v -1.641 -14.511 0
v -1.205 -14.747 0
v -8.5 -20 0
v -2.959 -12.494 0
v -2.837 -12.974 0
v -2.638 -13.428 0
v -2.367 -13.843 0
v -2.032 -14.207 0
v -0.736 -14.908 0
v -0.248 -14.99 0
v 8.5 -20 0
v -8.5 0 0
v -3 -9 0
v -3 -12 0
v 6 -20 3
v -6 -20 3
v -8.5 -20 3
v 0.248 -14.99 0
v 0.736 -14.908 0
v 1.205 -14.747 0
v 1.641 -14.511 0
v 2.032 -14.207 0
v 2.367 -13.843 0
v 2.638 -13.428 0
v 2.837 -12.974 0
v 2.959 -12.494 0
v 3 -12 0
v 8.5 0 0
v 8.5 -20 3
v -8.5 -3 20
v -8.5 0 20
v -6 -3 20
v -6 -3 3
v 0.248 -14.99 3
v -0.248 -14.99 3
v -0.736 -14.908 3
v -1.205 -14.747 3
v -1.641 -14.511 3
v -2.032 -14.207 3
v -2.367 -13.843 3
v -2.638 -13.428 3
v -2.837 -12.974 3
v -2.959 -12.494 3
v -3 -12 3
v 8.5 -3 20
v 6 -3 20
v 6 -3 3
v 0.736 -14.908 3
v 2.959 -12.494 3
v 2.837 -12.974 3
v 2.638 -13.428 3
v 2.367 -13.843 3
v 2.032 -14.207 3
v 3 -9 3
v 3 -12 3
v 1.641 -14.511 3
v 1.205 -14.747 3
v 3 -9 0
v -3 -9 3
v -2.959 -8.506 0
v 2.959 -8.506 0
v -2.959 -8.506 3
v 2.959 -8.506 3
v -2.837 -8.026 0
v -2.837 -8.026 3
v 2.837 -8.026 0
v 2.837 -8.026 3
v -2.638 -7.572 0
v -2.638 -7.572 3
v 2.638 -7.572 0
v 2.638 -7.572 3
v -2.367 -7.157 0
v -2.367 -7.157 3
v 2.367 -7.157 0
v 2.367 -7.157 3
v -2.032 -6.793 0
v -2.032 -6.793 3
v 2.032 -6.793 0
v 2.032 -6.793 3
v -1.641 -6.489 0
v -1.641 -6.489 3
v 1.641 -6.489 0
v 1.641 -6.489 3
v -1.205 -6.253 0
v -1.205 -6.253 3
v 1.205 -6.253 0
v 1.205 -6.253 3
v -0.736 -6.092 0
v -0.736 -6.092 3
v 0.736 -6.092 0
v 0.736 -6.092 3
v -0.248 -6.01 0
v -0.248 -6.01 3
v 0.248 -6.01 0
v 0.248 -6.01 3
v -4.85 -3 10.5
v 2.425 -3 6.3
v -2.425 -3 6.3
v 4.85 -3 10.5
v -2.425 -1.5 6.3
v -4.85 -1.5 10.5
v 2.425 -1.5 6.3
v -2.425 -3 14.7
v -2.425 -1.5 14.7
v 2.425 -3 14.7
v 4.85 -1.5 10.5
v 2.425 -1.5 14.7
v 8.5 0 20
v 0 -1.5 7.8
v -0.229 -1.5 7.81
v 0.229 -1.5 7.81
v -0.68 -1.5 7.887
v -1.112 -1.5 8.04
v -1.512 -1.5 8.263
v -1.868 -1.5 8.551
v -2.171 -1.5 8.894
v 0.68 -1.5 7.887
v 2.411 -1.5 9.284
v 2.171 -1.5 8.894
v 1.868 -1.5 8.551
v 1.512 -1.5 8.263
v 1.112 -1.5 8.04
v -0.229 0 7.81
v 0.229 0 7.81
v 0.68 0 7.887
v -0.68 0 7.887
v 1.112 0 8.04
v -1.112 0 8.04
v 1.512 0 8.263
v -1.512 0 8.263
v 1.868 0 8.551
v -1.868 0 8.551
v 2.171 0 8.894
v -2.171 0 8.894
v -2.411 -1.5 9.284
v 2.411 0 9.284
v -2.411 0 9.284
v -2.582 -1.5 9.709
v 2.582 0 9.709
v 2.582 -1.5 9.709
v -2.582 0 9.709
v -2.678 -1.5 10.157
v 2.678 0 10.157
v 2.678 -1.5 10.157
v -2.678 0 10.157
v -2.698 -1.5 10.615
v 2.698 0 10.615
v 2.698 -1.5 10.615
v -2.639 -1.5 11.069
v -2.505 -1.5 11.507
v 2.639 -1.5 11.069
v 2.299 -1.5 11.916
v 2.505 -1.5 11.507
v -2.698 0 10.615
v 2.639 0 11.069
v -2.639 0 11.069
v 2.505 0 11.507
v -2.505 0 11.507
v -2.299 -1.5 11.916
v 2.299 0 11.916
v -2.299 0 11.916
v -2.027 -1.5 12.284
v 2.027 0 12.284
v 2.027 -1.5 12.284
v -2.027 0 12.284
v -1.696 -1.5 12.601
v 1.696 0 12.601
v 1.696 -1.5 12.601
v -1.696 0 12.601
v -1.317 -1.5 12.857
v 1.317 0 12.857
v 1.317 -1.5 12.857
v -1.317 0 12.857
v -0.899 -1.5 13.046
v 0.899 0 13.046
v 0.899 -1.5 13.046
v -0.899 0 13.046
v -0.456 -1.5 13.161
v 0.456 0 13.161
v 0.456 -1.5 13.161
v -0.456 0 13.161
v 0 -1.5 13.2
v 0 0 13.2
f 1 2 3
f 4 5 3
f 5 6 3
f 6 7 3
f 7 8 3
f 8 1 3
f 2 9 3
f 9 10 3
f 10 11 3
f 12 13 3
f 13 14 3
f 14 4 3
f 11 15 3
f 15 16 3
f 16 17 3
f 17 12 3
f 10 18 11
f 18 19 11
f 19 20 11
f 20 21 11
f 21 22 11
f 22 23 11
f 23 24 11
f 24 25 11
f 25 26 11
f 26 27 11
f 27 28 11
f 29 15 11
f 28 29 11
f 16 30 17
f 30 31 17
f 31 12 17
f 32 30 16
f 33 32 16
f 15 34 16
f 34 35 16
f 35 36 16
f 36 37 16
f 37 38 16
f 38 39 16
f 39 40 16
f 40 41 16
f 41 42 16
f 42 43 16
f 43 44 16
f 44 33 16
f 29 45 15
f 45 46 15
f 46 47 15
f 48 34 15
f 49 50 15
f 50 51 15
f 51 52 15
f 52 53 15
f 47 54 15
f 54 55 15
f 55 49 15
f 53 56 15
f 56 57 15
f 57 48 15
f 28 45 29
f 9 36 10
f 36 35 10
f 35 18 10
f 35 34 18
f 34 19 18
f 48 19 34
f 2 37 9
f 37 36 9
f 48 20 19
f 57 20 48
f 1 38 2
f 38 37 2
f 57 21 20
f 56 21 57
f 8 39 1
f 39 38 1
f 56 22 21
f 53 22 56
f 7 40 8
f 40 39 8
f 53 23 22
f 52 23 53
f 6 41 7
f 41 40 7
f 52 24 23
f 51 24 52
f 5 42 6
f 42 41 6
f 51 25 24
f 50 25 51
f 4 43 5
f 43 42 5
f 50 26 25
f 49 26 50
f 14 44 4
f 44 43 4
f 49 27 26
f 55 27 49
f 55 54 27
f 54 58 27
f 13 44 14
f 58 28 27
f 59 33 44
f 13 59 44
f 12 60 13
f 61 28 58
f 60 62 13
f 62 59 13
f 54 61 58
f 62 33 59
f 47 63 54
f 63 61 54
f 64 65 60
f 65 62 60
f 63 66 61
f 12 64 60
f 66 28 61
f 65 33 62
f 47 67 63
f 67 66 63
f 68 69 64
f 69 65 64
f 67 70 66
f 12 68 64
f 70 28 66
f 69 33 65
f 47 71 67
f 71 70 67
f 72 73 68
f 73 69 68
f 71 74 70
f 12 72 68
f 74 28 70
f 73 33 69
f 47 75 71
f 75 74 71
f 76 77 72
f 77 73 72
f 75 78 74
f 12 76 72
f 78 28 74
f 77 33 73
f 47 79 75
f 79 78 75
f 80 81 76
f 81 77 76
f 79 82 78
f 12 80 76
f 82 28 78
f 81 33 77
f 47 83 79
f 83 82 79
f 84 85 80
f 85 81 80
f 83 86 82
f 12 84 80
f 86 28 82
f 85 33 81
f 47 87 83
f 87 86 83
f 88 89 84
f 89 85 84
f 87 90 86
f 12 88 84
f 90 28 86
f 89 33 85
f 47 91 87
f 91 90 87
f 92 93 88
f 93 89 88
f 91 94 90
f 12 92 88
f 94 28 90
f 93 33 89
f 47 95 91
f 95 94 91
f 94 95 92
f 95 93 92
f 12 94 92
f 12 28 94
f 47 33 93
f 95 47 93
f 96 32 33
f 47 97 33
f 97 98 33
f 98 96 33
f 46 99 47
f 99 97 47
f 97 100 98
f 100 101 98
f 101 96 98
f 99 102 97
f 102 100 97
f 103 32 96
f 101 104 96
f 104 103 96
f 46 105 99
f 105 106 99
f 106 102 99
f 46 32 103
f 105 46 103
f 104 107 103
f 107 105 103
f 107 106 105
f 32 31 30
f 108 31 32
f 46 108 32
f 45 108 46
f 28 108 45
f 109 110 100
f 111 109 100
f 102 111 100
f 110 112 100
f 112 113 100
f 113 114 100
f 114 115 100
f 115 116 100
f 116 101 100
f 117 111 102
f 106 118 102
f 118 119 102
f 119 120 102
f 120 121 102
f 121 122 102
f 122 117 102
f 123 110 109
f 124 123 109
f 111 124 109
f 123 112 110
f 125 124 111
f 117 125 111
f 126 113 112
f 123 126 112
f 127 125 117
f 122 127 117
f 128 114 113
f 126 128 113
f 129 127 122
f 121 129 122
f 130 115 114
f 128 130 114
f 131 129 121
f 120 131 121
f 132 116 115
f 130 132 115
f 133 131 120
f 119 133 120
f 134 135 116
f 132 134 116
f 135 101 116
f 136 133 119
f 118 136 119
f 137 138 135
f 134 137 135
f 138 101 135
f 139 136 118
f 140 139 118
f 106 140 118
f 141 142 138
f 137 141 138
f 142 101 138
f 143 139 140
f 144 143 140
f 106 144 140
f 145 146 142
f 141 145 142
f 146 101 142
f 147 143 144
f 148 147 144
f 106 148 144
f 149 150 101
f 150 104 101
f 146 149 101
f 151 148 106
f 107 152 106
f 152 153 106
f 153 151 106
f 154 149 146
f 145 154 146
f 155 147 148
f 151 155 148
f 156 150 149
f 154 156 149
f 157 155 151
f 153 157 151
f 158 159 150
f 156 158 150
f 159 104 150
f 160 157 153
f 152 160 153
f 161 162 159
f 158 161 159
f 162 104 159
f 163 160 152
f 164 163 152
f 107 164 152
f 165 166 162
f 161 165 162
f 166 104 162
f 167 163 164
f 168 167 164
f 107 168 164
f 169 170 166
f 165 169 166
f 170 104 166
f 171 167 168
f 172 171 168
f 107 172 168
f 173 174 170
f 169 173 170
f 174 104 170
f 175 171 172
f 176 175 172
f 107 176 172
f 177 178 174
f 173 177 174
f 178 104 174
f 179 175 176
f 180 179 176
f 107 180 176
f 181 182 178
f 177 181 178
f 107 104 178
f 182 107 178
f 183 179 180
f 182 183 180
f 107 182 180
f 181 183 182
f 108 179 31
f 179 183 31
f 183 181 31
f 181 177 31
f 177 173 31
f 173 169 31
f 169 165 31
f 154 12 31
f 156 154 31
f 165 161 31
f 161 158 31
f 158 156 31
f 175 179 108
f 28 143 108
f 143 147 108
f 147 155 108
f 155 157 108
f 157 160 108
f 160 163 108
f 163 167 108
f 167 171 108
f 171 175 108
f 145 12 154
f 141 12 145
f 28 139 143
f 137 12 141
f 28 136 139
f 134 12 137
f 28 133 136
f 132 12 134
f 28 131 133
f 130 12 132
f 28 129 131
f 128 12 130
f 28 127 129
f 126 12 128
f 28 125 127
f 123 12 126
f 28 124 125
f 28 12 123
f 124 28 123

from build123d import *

# Parameters (mm, degrees)
BOSS_EXTRUDE1_DEPTH   = 8.5
SKETCH2_W             = 17
SKETCH2_H             = 17
CUT_EXTRUDE1_DEPTH    = 6
CUT_EXTRUDE2_REACH    = 5
CORTE_EXTRUS_O1_REACH = 22
ESBO_O1_R             = 2.7
CORTE_EXTRUS_O2_DEPTH = 1.5


with BuildPart() as part:
    # Sketch1 → Boss-Extrude1 (new body, symmetric)
    with BuildSketch(Plane(origin=(0, 0, 0), x_dir=(0, 0, -1), z_dir=(1, 0, 0))):
        Polygon((0, 0), (-20, 0), (-20, -3), (-11.5, -11.5), (-3, -20), (0, -20), align=None)
    extrude(amount=BOSS_EXTRUDE1_DEPTH, both=True)

    # Sketch2 → Cut-Extrude1 (cut, symmetric)
    with BuildSketch(Plane(origin=(0, 0, 0), x_dir=(0, 0, -1), z_dir=(1, 0, 0))):
        with Locations((-11.5, -11.5)):
            Rectangle(SKETCH2_W, SKETCH2_H)
    extrude(amount=CUT_EXTRUDE1_DEPTH, both=True, mode=Mode.SUBTRACT)

    # Sketch3 → Cut-Extrude2 (cut, up to next)
    with BuildSketch(Plane.XY.offset(3), mode=Mode.PRIVATE) as cut_extrude2_sk1:
        with BuildLine():
            Line((-3, -9), (-3, -12))
            ThreePointArc((-3, -12), (0, -15), (3, -12))
            Line((3, -12), (3, -9))
            ThreePointArc((3, -9), (0, -6), (-3, -9))
        make_face()
    cut_extrude2_tool1 = extrude(cut_extrude2_sk1.sketch, amount=-CUT_EXTRUDE2_REACH, mode=Mode.PRIVATE) & part.part
    add(cut_extrude2_tool1.solids().sort_by_distance((0, -10.5, 3))[0], mode=Mode.SUBTRACT)

    # Esboço1 → Corte-extrusão1 (cut, up to next)
    with BuildSketch(Plane(origin=(0, 0, 0), x_dir=(1, 0, 0), z_dir=(0, 1, 0)), mode=Mode.PRIVATE) as corte_extrus_o1_sk1:
        with Locations((0, -10.5)):
            Circle(ESBO_O1_R)
    corte_extrus_o1_tool1 = extrude(corte_extrus_o1_sk1.sketch, amount=-CORTE_EXTRUS_O1_REACH, mode=Mode.PRIVATE) & part.part
    add(corte_extrus_o1_tool1.solids().sort_by_distance((0, 0, 10.5))[0], mode=Mode.SUBTRACT)

    # Esboço3 → Corte-extrusão2 (cut)
    with BuildSketch(Plane.XZ.offset(3)):
        Polygon((0, 14.7), (-2.424871131, 14.7), (-3.637306696, 12.6), (-4.849742261, 10.5), (-3.637306696, 8.4), (-2.424871131, 6.3), (0, 6.3), (2.424871131, 6.3), (3.637306696, 8.4), (4.849742261, 10.5), (3.637306696, 12.6), (2.424871131, 14.7), align=None)
    extrude(amount=-CORTE_EXTRUS_O2_DEPTH, mode=Mode.SUBTRACT)


solid = part.part
